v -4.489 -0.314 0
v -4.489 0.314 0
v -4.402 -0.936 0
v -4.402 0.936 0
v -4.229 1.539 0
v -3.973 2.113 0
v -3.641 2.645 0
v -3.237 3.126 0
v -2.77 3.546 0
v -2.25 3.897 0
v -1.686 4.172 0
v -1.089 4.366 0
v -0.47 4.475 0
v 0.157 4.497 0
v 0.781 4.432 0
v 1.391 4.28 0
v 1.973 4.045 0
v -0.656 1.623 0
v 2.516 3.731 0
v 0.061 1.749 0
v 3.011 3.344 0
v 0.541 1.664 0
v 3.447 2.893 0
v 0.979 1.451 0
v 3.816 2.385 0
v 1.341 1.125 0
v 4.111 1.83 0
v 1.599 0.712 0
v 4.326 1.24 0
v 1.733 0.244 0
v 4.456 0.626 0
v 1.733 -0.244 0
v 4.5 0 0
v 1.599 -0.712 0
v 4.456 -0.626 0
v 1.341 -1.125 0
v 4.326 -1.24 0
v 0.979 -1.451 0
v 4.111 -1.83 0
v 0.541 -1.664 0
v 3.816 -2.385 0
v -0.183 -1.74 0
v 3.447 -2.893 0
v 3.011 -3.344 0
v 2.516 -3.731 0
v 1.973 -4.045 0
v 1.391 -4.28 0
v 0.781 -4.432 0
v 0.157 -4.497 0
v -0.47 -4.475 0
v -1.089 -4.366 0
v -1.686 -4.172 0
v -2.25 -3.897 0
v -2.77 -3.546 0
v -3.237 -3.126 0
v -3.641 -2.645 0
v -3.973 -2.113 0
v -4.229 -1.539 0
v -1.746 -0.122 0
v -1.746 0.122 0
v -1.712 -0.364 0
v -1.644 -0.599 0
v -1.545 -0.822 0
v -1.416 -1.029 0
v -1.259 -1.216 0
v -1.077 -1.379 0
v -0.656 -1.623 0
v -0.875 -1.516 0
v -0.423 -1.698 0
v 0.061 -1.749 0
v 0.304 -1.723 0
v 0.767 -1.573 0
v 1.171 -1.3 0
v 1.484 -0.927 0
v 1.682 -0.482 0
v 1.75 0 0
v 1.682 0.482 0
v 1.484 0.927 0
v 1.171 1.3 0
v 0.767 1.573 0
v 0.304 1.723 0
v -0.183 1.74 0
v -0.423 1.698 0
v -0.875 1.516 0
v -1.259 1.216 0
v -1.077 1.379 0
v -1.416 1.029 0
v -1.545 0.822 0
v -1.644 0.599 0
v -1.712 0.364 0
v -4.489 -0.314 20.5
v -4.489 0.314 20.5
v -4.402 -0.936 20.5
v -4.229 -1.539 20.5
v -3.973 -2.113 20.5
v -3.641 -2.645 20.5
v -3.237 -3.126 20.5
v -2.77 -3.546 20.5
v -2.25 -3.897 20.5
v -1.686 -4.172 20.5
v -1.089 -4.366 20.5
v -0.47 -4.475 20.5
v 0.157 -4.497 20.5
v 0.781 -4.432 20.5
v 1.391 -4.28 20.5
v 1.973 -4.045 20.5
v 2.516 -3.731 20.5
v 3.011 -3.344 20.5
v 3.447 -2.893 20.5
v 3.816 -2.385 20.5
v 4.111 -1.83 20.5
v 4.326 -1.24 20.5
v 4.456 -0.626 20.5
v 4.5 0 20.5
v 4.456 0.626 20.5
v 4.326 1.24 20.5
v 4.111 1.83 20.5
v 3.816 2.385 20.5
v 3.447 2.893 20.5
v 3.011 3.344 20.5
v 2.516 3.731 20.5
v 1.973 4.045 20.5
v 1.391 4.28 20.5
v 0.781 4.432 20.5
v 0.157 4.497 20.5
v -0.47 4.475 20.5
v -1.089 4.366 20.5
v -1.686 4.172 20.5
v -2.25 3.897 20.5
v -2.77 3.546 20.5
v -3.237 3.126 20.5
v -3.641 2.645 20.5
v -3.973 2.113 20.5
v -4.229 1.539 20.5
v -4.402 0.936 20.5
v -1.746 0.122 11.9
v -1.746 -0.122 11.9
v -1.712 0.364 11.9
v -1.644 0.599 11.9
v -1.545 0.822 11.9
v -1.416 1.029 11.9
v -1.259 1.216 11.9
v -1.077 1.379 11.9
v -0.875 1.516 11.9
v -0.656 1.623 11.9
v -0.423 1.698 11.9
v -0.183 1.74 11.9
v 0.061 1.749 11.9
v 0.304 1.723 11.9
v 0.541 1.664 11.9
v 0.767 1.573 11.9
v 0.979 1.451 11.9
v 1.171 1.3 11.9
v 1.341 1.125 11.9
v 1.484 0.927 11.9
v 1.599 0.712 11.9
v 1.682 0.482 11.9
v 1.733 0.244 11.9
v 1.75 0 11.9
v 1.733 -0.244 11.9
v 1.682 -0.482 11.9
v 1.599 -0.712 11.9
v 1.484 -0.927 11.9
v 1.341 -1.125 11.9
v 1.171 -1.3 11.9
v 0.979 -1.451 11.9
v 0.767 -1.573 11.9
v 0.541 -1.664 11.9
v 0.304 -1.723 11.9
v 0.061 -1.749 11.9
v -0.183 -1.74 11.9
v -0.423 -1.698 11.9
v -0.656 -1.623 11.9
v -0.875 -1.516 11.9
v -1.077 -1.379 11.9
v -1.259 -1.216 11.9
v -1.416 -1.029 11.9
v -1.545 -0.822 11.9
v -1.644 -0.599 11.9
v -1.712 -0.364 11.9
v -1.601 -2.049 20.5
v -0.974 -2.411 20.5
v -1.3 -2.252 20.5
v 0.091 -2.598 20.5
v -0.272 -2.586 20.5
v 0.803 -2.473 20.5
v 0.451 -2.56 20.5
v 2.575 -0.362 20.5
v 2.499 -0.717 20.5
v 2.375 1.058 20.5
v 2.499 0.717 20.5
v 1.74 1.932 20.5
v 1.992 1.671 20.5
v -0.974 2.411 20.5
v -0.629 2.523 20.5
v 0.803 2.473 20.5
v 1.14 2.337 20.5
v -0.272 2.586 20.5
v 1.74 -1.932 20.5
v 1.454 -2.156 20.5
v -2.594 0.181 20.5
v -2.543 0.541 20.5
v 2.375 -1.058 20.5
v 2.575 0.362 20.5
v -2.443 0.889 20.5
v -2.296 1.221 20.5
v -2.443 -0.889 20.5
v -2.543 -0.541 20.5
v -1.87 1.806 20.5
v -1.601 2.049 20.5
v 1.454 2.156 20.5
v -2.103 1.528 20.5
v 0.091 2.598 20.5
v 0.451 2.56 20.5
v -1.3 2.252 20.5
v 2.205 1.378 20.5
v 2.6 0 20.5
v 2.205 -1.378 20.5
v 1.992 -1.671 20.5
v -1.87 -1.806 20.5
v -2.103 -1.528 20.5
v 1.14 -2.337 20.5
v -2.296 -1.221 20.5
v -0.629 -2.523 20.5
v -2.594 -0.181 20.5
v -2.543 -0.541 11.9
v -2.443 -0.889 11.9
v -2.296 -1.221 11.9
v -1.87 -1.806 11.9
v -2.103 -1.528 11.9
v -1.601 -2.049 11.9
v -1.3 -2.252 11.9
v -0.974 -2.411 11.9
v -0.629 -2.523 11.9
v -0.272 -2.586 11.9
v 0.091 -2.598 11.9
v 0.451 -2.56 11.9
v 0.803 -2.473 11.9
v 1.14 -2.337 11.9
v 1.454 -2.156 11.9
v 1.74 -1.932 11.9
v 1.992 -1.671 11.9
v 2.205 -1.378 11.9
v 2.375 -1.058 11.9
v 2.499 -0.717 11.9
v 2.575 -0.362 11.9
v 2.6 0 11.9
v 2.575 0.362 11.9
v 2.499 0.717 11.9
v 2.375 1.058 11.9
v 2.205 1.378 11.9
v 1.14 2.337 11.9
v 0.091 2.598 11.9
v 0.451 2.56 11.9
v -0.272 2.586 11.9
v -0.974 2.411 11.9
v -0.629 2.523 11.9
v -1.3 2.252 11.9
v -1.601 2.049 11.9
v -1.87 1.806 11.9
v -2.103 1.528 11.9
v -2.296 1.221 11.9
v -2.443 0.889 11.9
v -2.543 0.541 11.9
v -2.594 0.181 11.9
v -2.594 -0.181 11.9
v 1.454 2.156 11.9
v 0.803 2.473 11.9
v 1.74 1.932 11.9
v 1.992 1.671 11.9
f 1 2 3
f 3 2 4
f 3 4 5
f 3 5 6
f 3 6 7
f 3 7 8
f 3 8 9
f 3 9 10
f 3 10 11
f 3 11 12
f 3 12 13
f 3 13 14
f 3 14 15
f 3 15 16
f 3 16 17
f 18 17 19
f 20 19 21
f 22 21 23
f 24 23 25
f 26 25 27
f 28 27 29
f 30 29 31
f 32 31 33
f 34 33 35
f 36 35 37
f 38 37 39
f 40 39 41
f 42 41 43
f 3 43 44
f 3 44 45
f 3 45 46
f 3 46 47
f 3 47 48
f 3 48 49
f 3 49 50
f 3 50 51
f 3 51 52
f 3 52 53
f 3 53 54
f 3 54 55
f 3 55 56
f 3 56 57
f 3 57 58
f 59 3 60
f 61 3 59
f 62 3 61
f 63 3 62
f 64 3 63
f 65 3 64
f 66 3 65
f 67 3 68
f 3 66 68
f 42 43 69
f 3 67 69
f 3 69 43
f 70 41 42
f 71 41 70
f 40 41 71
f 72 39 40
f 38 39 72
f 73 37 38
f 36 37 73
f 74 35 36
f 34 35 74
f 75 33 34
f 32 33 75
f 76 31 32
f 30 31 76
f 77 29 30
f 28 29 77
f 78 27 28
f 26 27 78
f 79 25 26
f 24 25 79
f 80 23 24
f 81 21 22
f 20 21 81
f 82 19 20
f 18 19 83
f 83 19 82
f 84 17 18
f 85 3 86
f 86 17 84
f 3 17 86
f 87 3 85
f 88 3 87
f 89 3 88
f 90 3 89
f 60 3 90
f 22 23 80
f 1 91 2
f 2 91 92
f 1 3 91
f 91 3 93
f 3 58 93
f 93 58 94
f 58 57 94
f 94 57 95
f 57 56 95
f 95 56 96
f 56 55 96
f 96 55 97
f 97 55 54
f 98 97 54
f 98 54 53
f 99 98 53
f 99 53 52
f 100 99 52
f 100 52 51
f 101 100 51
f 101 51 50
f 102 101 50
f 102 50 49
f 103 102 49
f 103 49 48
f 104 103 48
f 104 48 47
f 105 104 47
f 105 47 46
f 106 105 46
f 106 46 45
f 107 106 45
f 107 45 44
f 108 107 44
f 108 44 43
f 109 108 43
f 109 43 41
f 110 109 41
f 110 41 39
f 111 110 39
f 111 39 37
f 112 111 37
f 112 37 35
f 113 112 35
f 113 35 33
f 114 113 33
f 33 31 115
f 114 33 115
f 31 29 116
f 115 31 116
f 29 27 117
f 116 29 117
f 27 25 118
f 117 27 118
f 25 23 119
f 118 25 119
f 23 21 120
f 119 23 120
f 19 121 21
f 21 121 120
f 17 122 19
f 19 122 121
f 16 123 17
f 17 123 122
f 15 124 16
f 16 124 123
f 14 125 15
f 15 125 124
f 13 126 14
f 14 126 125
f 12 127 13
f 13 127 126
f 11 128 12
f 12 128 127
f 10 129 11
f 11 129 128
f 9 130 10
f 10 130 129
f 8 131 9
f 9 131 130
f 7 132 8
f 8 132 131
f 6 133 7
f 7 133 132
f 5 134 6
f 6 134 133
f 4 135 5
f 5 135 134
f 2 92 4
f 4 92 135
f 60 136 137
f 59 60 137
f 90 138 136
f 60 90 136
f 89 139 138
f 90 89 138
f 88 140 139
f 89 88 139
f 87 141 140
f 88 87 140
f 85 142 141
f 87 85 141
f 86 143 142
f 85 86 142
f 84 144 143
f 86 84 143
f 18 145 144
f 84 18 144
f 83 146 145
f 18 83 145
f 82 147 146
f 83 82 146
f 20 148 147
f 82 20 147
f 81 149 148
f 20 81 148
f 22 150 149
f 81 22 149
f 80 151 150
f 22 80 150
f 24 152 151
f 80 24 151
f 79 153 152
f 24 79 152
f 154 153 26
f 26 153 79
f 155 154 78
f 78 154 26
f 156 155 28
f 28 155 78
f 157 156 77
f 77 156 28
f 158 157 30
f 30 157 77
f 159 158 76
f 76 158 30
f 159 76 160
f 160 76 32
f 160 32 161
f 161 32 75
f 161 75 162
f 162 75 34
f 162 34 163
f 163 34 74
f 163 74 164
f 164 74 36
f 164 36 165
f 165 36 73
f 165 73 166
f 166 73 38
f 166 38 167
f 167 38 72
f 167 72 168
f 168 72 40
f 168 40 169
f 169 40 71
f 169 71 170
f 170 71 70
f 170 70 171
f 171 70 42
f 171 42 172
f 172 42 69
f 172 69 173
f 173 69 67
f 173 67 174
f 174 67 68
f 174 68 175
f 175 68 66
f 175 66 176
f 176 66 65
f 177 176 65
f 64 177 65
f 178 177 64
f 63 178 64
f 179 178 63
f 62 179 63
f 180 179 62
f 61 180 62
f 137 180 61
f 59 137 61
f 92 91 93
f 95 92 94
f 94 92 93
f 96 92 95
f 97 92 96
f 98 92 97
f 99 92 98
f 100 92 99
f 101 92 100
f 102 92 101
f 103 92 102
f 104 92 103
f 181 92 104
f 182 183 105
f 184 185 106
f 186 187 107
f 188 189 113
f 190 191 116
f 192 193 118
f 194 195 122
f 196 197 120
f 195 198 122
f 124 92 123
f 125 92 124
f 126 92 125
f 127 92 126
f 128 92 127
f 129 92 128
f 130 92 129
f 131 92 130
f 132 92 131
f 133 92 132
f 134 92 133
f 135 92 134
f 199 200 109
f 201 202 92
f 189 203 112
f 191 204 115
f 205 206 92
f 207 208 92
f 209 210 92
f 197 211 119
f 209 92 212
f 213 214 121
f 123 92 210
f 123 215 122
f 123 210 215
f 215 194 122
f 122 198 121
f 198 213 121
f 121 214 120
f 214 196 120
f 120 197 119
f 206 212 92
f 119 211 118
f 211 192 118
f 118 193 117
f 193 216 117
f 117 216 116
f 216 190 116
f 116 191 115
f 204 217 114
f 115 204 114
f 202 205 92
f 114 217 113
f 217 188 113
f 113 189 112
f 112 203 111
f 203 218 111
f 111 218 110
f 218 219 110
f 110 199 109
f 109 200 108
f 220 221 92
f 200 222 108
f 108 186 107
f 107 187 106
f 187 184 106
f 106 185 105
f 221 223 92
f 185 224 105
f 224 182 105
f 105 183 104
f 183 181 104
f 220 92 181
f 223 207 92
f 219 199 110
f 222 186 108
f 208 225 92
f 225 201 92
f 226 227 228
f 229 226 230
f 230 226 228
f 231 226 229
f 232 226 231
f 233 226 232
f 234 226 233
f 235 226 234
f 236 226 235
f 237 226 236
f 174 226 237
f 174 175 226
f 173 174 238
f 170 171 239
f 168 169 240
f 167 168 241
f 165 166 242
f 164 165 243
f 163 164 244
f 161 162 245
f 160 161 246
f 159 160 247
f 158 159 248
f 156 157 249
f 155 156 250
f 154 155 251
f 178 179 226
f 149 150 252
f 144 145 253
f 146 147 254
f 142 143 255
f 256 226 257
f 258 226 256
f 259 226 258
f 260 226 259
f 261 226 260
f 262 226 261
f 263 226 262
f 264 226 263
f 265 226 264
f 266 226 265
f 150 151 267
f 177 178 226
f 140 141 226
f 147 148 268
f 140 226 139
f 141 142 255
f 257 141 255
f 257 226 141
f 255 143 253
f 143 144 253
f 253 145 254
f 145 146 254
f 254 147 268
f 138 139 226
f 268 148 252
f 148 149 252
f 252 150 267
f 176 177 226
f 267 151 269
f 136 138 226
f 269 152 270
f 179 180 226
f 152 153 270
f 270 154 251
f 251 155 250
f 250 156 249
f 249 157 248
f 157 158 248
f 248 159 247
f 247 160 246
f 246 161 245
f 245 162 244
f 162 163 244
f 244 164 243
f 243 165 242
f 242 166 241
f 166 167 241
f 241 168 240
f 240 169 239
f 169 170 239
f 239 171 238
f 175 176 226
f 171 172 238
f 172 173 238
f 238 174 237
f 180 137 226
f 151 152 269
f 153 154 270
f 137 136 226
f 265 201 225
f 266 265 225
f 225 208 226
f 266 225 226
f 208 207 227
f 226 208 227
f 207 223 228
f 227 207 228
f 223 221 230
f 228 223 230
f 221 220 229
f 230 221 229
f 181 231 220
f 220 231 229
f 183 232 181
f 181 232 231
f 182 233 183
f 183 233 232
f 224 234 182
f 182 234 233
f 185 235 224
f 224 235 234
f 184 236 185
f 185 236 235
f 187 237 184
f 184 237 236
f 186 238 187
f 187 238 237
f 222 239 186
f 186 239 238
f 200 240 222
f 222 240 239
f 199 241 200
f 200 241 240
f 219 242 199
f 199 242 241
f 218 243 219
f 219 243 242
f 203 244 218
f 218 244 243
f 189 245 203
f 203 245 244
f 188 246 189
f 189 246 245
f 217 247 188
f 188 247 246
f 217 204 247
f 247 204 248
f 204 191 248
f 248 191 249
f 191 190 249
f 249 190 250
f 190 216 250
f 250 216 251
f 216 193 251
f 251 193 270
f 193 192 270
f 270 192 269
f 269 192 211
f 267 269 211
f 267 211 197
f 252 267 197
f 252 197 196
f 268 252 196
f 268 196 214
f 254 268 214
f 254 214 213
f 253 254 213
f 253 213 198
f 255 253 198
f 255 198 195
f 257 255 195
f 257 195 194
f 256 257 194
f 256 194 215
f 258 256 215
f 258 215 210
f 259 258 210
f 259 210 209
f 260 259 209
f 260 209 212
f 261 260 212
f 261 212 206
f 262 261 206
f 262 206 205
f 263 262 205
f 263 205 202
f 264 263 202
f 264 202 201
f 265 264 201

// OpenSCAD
// rod: 6-32 threaded rod: http://store.curiousinventor.com/guides/tap_drill/

// Hole for either 6-32 or M3 bolt
servo_hole_radius = 3.5/2;

difference(){
    cylinder(r=4.5, h=20.5, $fn=45);

    // magnet
    translate([0,0,11.9])
    cylinder(r=2.6, h=9, $fn=45);

    // threaded rod mount	
    translate([0,0,-1])
    cylinder(r=servo_hole_radius, h=13, $fn=45);
}
